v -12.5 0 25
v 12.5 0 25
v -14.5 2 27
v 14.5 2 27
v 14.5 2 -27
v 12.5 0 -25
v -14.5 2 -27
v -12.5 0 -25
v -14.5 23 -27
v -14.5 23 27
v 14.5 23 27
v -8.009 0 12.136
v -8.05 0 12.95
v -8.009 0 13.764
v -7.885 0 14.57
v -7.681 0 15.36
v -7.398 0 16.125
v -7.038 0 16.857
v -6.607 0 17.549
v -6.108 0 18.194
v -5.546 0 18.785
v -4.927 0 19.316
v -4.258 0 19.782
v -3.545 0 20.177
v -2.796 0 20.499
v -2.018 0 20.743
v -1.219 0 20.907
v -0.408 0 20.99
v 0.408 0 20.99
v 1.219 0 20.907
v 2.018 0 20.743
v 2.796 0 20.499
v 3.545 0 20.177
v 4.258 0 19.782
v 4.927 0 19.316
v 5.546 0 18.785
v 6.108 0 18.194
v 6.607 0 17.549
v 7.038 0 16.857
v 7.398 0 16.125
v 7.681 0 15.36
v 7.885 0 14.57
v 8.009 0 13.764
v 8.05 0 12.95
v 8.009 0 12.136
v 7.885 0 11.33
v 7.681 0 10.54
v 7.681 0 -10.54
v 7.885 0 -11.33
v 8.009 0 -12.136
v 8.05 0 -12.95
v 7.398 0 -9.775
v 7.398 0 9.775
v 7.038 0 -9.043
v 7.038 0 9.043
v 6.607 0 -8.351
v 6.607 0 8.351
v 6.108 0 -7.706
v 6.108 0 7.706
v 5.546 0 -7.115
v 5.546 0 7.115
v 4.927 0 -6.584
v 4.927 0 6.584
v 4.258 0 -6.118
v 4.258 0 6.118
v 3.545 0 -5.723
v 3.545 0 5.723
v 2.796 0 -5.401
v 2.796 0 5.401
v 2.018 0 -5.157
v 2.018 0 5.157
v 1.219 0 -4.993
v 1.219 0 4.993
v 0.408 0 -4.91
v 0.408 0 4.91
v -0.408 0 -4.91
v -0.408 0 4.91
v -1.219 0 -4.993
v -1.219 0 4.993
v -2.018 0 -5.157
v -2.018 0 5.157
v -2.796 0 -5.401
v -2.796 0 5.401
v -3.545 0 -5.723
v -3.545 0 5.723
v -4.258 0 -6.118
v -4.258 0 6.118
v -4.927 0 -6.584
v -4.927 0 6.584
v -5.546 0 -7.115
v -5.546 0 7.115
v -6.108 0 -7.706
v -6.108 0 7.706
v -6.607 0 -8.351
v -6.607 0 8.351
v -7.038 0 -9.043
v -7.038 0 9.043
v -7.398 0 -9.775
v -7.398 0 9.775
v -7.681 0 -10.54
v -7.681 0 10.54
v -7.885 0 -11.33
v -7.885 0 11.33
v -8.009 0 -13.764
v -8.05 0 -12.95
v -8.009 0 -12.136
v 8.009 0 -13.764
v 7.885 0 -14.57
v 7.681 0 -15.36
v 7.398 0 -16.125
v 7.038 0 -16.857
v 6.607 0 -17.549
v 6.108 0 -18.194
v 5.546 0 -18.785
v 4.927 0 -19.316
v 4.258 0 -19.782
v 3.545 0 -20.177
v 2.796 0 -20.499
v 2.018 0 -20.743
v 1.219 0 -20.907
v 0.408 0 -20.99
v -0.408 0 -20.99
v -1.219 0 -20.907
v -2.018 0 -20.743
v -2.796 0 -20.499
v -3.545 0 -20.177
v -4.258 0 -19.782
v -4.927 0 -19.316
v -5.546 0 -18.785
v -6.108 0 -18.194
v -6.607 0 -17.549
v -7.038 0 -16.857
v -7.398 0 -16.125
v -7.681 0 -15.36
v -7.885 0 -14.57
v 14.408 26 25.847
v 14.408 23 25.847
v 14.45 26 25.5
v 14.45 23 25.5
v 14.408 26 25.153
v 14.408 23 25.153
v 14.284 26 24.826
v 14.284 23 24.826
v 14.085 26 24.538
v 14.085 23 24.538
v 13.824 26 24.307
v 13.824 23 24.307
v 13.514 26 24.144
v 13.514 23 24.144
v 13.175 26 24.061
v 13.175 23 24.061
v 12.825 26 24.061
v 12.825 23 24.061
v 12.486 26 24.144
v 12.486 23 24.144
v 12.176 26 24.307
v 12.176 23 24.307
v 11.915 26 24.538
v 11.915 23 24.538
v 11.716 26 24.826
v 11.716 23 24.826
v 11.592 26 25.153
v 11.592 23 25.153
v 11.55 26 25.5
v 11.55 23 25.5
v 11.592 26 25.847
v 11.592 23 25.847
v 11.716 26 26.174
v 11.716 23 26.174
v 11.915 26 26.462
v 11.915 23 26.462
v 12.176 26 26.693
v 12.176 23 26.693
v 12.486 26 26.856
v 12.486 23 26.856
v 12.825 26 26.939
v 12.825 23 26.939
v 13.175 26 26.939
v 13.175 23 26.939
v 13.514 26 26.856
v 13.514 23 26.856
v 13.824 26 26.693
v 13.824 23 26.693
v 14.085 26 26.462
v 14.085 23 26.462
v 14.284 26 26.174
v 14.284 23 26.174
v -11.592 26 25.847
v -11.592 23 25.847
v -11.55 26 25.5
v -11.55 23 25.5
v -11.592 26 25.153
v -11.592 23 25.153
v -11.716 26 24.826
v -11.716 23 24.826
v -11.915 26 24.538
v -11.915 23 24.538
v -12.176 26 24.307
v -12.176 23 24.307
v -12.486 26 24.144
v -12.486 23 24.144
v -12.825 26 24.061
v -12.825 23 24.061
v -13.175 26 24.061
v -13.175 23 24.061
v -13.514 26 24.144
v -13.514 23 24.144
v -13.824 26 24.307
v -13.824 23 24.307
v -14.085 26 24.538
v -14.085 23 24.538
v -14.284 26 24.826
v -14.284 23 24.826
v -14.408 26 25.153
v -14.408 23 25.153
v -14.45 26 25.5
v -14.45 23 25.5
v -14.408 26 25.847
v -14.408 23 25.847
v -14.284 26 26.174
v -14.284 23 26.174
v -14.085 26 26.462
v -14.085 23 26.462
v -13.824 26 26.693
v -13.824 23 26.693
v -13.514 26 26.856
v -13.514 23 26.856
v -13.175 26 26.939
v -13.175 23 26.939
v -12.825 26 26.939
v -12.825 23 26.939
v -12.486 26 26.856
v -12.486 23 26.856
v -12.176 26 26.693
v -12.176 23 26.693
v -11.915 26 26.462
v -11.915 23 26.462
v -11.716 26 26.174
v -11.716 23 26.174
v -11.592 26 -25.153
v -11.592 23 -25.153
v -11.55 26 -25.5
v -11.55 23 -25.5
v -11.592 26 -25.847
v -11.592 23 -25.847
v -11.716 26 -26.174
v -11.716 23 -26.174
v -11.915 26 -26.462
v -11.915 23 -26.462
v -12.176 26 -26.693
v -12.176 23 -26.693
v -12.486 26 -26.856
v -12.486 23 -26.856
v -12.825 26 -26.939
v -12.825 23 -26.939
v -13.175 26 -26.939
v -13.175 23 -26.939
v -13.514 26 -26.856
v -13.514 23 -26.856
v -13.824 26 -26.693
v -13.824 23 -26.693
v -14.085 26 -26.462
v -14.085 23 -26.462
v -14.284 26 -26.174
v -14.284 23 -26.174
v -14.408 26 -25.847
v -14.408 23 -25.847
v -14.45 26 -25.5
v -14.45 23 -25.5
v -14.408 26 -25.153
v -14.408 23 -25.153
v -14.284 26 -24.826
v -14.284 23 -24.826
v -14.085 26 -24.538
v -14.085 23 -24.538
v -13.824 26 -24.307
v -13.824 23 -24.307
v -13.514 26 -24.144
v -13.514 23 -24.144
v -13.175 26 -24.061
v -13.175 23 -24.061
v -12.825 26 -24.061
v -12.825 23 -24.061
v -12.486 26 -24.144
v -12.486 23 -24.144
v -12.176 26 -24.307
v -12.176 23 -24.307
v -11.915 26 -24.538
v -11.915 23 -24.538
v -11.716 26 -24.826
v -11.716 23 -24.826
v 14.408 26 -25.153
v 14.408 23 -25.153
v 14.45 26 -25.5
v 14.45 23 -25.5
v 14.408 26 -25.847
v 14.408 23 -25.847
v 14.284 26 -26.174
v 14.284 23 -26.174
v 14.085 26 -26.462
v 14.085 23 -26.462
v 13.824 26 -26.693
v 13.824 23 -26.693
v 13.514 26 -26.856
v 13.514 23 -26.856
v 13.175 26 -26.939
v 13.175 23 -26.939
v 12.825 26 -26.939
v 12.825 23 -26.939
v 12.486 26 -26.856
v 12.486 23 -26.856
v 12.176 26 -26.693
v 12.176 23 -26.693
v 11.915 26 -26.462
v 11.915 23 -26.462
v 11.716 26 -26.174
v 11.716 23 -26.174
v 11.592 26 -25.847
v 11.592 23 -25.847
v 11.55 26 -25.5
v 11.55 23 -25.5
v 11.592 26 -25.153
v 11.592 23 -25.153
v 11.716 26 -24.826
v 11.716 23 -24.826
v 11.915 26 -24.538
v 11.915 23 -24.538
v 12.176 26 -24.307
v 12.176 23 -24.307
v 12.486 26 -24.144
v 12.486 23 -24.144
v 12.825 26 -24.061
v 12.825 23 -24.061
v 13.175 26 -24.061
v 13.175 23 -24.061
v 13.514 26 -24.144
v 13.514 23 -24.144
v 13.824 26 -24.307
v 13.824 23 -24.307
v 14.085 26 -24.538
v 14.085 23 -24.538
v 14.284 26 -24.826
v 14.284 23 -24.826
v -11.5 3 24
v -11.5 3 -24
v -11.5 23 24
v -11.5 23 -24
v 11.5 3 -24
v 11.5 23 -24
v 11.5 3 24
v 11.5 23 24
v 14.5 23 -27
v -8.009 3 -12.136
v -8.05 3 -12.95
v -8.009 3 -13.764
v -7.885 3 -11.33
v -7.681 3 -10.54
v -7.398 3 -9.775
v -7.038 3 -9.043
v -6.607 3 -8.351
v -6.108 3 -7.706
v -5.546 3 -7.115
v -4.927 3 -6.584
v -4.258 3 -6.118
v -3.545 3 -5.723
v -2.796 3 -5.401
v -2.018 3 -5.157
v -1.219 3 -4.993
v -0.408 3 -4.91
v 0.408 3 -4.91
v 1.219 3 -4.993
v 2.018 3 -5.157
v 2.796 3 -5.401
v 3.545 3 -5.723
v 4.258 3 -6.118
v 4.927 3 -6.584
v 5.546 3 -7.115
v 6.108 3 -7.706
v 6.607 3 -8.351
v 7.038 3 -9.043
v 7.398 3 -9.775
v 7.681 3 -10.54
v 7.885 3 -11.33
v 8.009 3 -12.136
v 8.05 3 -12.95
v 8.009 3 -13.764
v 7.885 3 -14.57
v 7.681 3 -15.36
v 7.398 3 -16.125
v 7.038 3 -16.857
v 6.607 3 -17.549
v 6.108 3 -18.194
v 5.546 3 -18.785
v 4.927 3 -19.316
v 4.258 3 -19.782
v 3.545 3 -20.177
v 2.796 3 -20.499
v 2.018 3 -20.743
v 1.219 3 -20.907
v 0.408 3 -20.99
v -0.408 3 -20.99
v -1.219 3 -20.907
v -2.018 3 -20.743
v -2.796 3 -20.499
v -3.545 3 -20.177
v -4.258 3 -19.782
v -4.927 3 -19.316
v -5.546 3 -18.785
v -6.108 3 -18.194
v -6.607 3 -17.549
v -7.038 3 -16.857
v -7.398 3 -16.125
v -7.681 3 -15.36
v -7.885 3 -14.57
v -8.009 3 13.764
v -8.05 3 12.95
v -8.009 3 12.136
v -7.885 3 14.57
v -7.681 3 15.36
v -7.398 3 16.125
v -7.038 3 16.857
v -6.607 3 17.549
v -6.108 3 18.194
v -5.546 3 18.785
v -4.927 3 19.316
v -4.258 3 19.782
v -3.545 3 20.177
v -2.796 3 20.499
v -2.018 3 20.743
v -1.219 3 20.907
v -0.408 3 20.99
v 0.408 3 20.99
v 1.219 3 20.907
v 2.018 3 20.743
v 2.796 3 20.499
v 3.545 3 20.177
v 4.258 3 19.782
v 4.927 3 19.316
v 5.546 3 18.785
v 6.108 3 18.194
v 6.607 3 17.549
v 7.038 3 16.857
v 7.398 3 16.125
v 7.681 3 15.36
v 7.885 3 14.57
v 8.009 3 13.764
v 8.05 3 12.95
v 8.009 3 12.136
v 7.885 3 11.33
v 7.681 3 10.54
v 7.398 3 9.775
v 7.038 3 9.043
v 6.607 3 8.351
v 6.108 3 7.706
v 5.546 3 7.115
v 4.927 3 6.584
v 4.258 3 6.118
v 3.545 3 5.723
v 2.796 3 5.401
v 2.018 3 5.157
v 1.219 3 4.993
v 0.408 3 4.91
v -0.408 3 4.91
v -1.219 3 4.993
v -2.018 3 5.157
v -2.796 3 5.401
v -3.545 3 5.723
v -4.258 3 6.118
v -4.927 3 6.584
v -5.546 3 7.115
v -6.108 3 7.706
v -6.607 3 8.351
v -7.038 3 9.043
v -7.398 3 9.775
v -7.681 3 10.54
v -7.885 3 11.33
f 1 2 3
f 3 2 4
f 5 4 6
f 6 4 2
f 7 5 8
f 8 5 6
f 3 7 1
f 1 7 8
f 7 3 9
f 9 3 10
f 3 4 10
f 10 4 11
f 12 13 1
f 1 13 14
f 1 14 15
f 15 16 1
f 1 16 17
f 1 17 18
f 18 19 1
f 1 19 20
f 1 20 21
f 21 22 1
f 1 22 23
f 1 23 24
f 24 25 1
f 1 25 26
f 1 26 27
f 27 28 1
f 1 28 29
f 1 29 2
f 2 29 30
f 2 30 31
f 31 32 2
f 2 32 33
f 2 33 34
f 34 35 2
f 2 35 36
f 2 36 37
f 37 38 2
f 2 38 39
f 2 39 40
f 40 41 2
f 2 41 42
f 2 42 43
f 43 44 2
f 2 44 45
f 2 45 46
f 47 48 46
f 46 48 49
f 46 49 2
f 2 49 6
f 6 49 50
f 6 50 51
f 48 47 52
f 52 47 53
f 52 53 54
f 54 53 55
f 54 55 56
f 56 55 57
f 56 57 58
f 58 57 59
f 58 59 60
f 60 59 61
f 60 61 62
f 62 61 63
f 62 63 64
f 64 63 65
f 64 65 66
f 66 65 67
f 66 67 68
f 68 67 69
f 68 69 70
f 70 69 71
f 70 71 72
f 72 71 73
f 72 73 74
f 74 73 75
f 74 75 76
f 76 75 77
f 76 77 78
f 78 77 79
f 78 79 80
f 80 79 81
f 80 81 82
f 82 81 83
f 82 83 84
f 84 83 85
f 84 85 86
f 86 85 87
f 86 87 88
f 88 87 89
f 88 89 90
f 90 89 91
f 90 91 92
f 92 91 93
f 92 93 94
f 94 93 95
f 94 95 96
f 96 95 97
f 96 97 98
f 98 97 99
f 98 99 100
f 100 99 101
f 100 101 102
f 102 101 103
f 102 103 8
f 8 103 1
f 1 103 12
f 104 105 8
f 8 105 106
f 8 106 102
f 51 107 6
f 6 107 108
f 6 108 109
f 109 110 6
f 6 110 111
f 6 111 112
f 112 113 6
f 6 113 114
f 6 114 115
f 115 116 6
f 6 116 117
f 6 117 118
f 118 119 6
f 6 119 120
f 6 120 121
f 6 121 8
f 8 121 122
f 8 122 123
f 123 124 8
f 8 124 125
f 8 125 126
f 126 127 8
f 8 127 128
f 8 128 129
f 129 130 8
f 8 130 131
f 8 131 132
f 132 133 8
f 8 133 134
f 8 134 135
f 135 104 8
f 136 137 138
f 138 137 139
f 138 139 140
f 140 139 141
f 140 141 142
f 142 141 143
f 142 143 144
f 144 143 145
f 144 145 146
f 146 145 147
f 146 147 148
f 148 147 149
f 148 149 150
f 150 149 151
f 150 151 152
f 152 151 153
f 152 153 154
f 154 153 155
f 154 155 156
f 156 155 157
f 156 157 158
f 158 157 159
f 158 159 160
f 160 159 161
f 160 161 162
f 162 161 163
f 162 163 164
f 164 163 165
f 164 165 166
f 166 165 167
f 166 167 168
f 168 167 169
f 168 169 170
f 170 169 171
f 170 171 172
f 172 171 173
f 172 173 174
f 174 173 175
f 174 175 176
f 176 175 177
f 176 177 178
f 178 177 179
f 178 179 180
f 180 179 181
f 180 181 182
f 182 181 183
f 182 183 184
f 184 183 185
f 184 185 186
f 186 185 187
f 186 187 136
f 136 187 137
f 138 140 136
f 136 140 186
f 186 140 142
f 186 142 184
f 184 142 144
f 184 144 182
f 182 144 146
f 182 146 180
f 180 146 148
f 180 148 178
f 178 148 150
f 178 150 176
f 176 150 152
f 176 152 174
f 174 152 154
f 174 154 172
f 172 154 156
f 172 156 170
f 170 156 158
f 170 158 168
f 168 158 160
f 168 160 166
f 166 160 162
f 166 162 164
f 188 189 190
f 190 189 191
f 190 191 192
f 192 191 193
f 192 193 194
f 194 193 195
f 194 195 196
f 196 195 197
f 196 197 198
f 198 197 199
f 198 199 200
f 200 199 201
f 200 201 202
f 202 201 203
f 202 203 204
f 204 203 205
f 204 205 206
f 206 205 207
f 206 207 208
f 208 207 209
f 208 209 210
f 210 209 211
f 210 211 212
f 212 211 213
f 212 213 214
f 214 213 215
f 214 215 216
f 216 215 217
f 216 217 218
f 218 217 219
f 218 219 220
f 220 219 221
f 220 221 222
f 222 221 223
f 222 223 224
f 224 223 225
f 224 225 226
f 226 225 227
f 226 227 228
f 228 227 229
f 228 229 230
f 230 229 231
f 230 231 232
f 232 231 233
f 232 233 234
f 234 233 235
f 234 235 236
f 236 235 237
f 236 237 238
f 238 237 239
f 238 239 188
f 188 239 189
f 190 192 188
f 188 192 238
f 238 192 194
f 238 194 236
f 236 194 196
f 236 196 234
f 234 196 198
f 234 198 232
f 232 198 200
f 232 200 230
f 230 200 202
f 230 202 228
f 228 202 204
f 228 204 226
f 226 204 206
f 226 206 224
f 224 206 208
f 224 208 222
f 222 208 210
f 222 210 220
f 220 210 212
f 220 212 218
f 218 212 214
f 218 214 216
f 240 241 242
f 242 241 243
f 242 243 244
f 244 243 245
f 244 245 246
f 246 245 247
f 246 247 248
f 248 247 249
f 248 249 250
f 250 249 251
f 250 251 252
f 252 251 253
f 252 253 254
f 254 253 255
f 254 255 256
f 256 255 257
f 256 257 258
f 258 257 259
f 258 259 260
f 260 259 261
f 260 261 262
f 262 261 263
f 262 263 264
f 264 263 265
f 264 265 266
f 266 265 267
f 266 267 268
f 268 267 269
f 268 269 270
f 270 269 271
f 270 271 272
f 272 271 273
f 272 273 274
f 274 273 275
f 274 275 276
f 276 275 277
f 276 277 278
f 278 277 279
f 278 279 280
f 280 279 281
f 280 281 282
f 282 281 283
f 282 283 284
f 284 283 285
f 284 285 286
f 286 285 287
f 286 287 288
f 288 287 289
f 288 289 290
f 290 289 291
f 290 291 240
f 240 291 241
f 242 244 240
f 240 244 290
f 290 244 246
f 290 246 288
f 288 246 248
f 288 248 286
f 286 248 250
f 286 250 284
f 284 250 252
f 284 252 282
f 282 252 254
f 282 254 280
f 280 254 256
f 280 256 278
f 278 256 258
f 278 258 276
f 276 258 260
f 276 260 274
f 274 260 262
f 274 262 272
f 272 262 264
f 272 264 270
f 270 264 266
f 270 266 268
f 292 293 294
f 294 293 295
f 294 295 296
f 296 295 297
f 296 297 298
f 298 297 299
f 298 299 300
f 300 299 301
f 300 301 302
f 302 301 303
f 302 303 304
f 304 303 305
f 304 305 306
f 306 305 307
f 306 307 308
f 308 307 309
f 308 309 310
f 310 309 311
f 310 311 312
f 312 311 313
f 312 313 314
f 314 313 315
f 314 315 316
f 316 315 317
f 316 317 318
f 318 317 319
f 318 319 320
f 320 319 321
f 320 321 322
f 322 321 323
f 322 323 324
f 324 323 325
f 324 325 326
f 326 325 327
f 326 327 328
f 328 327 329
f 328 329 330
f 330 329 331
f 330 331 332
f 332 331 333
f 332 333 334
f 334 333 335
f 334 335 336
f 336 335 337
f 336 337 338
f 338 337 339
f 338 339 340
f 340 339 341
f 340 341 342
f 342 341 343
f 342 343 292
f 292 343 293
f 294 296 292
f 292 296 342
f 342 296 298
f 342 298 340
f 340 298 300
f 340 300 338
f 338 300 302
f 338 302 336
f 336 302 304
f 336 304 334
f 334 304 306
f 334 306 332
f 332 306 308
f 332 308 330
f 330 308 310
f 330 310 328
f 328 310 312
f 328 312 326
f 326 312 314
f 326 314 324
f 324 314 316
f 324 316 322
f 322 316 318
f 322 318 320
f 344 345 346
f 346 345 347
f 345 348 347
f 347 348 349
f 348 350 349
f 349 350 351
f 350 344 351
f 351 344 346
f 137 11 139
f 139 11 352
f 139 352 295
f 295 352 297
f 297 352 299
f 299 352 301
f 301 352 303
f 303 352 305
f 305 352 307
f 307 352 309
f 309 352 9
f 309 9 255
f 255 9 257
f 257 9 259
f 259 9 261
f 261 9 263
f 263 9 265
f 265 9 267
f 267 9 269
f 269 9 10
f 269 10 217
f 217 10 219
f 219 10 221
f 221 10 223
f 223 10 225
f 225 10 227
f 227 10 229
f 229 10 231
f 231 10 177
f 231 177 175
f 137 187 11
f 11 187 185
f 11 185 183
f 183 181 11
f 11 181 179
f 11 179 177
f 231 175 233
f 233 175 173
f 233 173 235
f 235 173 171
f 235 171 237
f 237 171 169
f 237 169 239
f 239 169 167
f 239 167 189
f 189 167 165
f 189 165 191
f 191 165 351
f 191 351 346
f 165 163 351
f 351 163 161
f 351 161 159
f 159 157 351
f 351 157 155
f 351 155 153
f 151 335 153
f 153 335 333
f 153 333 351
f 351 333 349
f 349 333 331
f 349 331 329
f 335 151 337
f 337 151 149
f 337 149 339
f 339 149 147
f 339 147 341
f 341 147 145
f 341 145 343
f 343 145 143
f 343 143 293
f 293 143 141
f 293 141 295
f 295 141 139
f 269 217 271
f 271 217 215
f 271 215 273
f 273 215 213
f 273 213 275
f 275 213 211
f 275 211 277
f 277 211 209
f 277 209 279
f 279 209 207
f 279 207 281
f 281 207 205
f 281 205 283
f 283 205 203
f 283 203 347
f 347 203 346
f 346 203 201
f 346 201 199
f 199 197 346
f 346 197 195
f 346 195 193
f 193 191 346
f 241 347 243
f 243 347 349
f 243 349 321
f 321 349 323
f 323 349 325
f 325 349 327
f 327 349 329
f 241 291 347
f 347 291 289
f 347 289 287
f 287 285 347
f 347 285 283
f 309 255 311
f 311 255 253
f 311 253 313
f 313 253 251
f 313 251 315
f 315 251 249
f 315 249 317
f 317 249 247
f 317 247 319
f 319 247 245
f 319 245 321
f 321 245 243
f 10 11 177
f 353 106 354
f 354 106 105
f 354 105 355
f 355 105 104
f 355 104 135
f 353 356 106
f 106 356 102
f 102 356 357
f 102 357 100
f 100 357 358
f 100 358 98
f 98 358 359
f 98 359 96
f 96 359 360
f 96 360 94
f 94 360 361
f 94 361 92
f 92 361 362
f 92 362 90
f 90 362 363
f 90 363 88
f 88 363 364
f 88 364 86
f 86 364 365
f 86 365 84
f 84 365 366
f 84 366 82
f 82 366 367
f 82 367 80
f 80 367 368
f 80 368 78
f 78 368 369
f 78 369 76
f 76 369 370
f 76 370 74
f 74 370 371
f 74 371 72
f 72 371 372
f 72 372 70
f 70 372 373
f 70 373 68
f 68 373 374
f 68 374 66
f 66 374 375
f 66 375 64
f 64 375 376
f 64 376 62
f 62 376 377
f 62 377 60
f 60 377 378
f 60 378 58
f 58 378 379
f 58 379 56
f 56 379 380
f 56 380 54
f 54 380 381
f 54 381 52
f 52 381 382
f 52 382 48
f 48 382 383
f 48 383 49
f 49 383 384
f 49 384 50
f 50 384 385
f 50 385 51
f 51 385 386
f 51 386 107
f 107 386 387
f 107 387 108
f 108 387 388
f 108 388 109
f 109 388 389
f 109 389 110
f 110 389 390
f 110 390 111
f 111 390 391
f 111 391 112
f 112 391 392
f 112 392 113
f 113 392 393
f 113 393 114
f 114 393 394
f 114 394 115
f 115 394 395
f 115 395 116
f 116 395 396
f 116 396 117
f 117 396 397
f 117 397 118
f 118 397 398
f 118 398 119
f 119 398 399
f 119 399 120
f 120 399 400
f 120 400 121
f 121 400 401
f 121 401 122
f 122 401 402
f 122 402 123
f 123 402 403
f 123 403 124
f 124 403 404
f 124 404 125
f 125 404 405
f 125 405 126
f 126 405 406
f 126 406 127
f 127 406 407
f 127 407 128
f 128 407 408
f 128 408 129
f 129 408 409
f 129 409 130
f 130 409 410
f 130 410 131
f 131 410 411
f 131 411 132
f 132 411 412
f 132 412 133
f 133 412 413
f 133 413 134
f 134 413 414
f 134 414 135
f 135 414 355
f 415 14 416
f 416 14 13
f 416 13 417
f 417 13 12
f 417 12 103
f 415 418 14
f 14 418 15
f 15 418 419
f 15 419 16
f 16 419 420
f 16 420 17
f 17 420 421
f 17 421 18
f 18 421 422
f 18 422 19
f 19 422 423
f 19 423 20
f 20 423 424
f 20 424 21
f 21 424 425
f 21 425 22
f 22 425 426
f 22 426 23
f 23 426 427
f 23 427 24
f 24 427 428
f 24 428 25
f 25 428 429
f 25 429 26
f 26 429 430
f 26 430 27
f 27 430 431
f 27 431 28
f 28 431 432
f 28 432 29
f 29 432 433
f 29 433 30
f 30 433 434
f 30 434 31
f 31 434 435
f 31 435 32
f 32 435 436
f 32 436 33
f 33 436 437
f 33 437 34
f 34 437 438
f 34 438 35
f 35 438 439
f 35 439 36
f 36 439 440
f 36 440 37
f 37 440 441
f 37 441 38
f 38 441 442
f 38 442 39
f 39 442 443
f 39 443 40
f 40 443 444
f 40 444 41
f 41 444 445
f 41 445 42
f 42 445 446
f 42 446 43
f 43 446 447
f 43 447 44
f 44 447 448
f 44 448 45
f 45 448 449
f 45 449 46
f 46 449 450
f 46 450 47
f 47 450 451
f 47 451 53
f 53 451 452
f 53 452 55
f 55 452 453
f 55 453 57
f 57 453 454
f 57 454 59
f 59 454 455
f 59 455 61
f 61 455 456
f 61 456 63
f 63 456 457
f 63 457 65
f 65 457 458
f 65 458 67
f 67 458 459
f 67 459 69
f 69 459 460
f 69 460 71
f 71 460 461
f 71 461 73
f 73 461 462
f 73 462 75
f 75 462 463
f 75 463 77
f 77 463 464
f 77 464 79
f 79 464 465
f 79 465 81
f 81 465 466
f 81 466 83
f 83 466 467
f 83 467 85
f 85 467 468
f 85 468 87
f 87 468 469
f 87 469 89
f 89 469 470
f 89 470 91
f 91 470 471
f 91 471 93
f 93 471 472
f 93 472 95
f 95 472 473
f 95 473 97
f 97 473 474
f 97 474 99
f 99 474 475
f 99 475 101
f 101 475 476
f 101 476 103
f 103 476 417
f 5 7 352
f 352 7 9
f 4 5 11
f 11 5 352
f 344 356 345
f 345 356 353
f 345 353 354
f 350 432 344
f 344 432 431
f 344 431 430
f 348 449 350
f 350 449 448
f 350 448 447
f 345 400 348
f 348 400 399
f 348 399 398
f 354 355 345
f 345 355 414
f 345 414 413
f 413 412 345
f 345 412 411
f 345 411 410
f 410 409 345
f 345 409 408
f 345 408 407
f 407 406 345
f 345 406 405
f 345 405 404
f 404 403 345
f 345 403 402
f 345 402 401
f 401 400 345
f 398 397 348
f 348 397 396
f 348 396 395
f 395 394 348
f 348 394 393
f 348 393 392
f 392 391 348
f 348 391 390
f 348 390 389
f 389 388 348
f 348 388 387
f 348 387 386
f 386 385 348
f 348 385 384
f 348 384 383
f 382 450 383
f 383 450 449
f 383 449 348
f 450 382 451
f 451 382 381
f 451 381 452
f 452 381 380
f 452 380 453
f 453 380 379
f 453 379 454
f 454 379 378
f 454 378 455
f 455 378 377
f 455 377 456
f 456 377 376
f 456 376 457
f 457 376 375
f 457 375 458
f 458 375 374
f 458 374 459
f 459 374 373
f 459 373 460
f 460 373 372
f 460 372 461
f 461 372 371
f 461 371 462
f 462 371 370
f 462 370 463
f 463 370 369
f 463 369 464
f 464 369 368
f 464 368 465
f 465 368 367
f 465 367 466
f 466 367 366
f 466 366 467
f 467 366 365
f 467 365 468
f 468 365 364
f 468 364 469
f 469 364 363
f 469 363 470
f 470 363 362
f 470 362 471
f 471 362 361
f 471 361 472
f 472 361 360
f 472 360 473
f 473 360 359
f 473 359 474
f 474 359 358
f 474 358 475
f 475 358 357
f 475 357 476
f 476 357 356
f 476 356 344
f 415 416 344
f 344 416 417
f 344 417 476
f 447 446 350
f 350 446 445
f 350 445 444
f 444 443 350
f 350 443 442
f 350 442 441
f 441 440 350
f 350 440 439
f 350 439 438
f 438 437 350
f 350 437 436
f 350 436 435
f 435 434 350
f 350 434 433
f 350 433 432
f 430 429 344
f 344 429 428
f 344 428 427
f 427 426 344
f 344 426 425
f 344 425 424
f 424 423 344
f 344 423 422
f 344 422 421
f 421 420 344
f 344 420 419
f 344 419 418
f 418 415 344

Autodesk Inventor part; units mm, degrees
ref_plane "YZ Plane" through (0, 0, 0) normal (1, 0, 0) x (0, 1, 0)
ref_plane "XZ Plane" through (0, 0, 0) normal (0, 1, 0) x (-1, 0, 0)
ref_plane "XY Plane" through (0, 0, 0) normal (0, 0, 1) x (1, 0, 0)
sketch "Sketch1" plane through (0, 0, 0) normal (0, 1, 0) x (-1, 0, 0)
  circle A0 centre (0, 12.95) radius 8.05
  circle A1 centre (0, -12.95) radius 8.05
  line L0 (14.5, 27) -> (-14.5, 27)
  line L1 (-14.5, 27) -> (-14.5, -27)
  line L2 (-14.5, -27) -> (14.5, -27)
  line L3 (14.5, -27) -> (14.5, 27)
  line L4 (14.5, 27) -> (-14.5, -27) construction
  line L5 (-14.5, 27) -> (14.5, -27) construction
  point P0 (0, 0)
  dimension "d0" = 16.1
  dimension "d1" = 16.1
  dimension "d2" = 25.9
  dimension "d3" = 29
  dimension "d4" = 54
  dimension "d5" = 14.5
  dimension "d6" = 14.5
  dimension "d7" = 14.05
  dimension "d8" = 14.05
extrude "Extrusion1" add sketch "Sketch1" along normal blind 3
sketch "Sketch12" plane through (0, 3, 0) normal (0, 1, 0) x (1, 0, 0)
  circle A0 centre (0, 12.95) radius 8.05 projected
  circle A1 centre (0, -12.95) radius 8.05 projected
  line L0 (-14.5, -27) -> (14.5, -27) projected
  line L1 (14.5, -27) -> (14.5, 27) projected
  line L2 (14.5, 27) -> (-14.5, 27) projected
  line L3 (-14.5, 27) -> (-14.5, -27) projected
  line L4 (14.5, -27) -> (14.5, 27) projected
  line L5 (-14.5, -27) -> (14.5, -27)
  line L6 (14.5, -27) -> (14.5, 27)
  line L7 (14.5, 27) -> (-14.5, 27)
  line L8 (-14.5, 27) -> (-14.5, -27)
  line L9 (-11.5, -24) -> (11.5, -24)
  line L10 (11.5, -24) -> (11.5, 24)
  line L11 (11.5, 24) -> (-11.5, 24)
  line L12 (-11.5, 24) -> (-11.5, -24)
  point P0 (0, 0)
  dimension "d85" = 3
  dimension "d86" = 3
  dimension "d87" = 3
  dimension "d88" = 3
extrude "Extrusion11" add sketch "Sketch12" along normal blind 20 contours L3 L2 L1 L0
sketch "Sketch13" plane through (0, 23, 0) normal (0, 1, 0) x (1, 0, 0)
  circle A0 centre (-13, -25.5) radius 1.45
  line L0 (-14.5, 27) -> (-14.5, -27) projected
  line L1 (-14.5, -27) -> (14.5, -27) projected
  circle A1 centre (-13, 25.5) radius 1.45
  circle A2 centre (13, -25.5) radius 1.45
  circle A3 centre (13, 25.5) radius 1.45
  point P0 (0, 0)
  dimension "d91" = 1.5
  dimension "d92" = 1.5
  dimension "d93" = 2.9
  dimension "d96" = 51
  dimension "d99" = 26
extrude "Extrusion12" add sketch "Sketch13" along normal blind 3
chamfer "Chamfer5" distance 2 angle 45 4 edges at (14.5, 0, 0) (0, 0, 27) (-14.5, 0, 0) (0, 0, -27)
sketch "Sketch2" plane through (0, 3, 0) normal (0, 1, 0) x (1, 0, 0)
  line L0 (-11.5, -24) -> (11.5, -24)
  line L1 (11.5, -24) -> (11.5, 24)
  line L2 (11.5, 24) -> (-11.5, 24)
  line L3 (-11.5, 24) -> (-11.5, -24)
  line L4 (-11.5, -24) -> (11.5, 24) construction
  line L5 (11.5, -24) -> (-11.5, 24) construction
  line L6 (14.5, -27) -> (14.5, 27) projected
  line L7 (-14.5, -27) -> (14.5, -27)
  line L8 (14.5, -27) -> (14.5, 27)
  line L9 (14.5, 27) -> (-14.5, 27)
  line L10 (-14.5, 27) -> (-14.5, -27)
  line L11 (-14.5, -27) -> (14.5, 27) construction
  line L12 (14.5, -27) -> (-14.5, 27) construction
  point P0 (0, 0)
  dimension "d11" = 23
  dimension "d12" = 48
sketch "Sketch3" plane through (0, 28, 0) normal (0, 1, 0) x (1, 0, 0)
  line L0 (-25.5, 27) -> (25.5, 27)
  line L1 (25.5, 27) -> (25.5, -27)
  line L2 (25.5, -27) -> (-25.5, -27)
  line L3 (-25.5, -27) -> (-25.5, 27)
  line L4 (-25.5, 27) -> (25.5, -27) construction
  line L5 (25.5, 27) -> (-25.5, -27) construction
  line L6 (14.5, -27) -> (14.5, 27) projected
  line L7 (-14.5, 27) -> (14.5, 27)
  line L8 (14.5, 27) -> (14.5, -27)
  line L9 (14.5, -27) -> (-14.5, -27)
  line L10 (-14.5, -27) -> (-14.5, 27)
  line L11 (-14.5, 27) -> (14.5, -27) construction
  line L12 (14.5, 27) -> (-14.5, -27) construction
  point P0 (0, 0)
  dimension "d15" = 51
sketch "Sketch4" plane through (0, 28, 0) normal (0, 1, 0) x (1, 0, 0)
  line L0 (-25.5, -27) -> (25.5, -27) projected
  line L1 (-25.5, 27) -> (25.5, 27)
  line L2 (25.5, 27) -> (25.5, -27)
  line L3 (25.5, -27) -> (-25.5, -27)
  line L4 (-25.5, -27) -> (-25.5, 27)
  line L5 (-25.5, 27) -> (25.5, -27) construction
  line L6 (25.5, 27) -> (-25.5, -27) construction
  line L7 (-22.5, 24) -> (22.5, 24)
  line L8 (22.5, 24) -> (22.5, -24)
  line L9 (22.5, -24) -> (-22.5, -24)
  line L10 (-22.5, -24) -> (-22.5, 24)
  line L11 (-22.5, 24) -> (22.5, -24) construction
  line L12 (22.5, 24) -> (-22.5, -24) construction
  point P0 (0, 0)
  dimension "d18" = 45
  dimension "d19" = 48
sketch "Sketch5" plane through (0, 28, 0) normal (0, 1, 0) x (1, 0, 0)
  line L0 (-11.5, 24) -> (-22.5, 24) projected
  line L1 (-22.5, 24) -> (-22.5, -24) projected
  line L2 (-22.5, -24) -> (-11.5, -24) projected
  line L3 (-11.5, -24) -> (-11.5, 24) projected
  line L4 (22.5, 24) -> (11.5, 24) projected
  line L5 (11.5, 24) -> (11.5, -24) projected
  line L6 (11.5, -24) -> (22.5, -24) projected
  line L7 (22.5, -24) -> (22.5, 24) projected
  circle A0 centre (18.5, 20) radius 1.75
  line L8 (14.5, 27) -> (14.5, -27) projected
  line L9 (14.5, 27) -> (25.5, 27) projected
  line L10 (25.5, 27) -> (25.5, -27) projected
  line L11 (25.5, -27) -> (14.5, -27) projected
  line L12 (-11.5, 24) -> (-11.5, -24) projected
  line L13 (-11.5, -24) -> (11.5, -24) projected
  line L14 (11.5, -24) -> (11.5, 24) projected
  line L15 (11.5, 24) -> (-11.5, 24) projected
  circle A1 centre (0, 12.75) radius 8.05 projected
  circle A2 centre (0, -12.75) radius 8.05 projected
  circle A3 centre (18.5, -20) radius 1.75
  circle A4 centre (-18.5, 20) radius 1.75
  circle A5 centre (-18.5, -20) radius 1.75
  point P0 (0, 0)
  dimension "d22" = 3.5
  dimension "d23" = 4
  dimension "d24" = 4
  dimension "d25" = 4
  dimension "d28" = 40
  dimension "d31" = 37
  dimension "d53" = 4
sketch "Sketch6" plane through (0, 25, 0) normal (0, -1, 0) x (1, 0, 0)
  line L0 (-16.5, 27) -> (-16.5, -27) projected
  circle A0 centre (-18.5, -20) radius 1.75 projected
  circle A1 centre (-18.5, 20) radius 1.75 projected
  line L1 (-16.5, 27) -> (-25.5, 27) projected
  line L2 (-25.5, 27) -> (-25.5, -27) projected
  line L3 (-25.5, -27) -> (-16.5, -27) projected
  line L4 (16.5, -27) -> (16.5, 27) projected
  circle A2 centre (18.5, -20) radius 1.75 projected
  line L5 (16.5, -27) -> (25.5, -27) projected
  line L6 (25.5, -27) -> (25.5, 27) projected
  line L7 (25.5, 27) -> (16.5, 27) projected
  circle A3 centre (18.5, 20) radius 1.75 projected
  circle A4 centre (18.5, -20) radius 3
  circle A5 centre (18.5, 20) radius 3
  circle A6 centre (-18.5, -20) radius 3
  circle A7 centre (-18.5, 20) radius 3
  point P0 (0, 0)
  dimension "d42" = 6
  dimension "d45" = 40
  dimension "d48" = 37
sketch "Sketch7" plane through (25.5, 43, -27) normal (0, 0, -1) x (-1, 0, 0)
  line L0 (40, -41) -> (11, -41) projected
  line L1 (40, -41) -> (40, -20) projected
  line L2 (42, -18) -> (40, -20) projected
  line L3 (51, -18) -> (42, -18) projected
  line L4 (51, 0) -> (51, -18) projected
  line L5 (0, 0) -> (51, 0) projected
  line L6 (0, -18) -> (0, 0) projected
  line L7 (9, -18) -> (0, -18) projected
  line L8 (11, -20) -> (9, -18) projected
  line L9 (11, -41) -> (11, -20) projected
  line L10 (0, 0) -> (51, 0) projected
  line L11 (18, 0) -> (33, 0)
  line L12 (33, 0) -> (33, -3)
  line L13 (33, -3) -> (18, -3)
  line L14 (18, -3) -> (18, 0)
  point P0 (25.5, -43)
  dimension "d54" = 15
  dimension "d55" = 3
  dimension "d56" = 18
  dimension "d57" = 18
  dimension "d63" = 6
equation "\"d1\" = d0"
equation "\"d7\" = d8"
equation "\"d23\" = d24"
equation "\"d25\" = d53"
equation "\"d56\" = d57"
properties part number "obudowa_baza_V2_cz1"
